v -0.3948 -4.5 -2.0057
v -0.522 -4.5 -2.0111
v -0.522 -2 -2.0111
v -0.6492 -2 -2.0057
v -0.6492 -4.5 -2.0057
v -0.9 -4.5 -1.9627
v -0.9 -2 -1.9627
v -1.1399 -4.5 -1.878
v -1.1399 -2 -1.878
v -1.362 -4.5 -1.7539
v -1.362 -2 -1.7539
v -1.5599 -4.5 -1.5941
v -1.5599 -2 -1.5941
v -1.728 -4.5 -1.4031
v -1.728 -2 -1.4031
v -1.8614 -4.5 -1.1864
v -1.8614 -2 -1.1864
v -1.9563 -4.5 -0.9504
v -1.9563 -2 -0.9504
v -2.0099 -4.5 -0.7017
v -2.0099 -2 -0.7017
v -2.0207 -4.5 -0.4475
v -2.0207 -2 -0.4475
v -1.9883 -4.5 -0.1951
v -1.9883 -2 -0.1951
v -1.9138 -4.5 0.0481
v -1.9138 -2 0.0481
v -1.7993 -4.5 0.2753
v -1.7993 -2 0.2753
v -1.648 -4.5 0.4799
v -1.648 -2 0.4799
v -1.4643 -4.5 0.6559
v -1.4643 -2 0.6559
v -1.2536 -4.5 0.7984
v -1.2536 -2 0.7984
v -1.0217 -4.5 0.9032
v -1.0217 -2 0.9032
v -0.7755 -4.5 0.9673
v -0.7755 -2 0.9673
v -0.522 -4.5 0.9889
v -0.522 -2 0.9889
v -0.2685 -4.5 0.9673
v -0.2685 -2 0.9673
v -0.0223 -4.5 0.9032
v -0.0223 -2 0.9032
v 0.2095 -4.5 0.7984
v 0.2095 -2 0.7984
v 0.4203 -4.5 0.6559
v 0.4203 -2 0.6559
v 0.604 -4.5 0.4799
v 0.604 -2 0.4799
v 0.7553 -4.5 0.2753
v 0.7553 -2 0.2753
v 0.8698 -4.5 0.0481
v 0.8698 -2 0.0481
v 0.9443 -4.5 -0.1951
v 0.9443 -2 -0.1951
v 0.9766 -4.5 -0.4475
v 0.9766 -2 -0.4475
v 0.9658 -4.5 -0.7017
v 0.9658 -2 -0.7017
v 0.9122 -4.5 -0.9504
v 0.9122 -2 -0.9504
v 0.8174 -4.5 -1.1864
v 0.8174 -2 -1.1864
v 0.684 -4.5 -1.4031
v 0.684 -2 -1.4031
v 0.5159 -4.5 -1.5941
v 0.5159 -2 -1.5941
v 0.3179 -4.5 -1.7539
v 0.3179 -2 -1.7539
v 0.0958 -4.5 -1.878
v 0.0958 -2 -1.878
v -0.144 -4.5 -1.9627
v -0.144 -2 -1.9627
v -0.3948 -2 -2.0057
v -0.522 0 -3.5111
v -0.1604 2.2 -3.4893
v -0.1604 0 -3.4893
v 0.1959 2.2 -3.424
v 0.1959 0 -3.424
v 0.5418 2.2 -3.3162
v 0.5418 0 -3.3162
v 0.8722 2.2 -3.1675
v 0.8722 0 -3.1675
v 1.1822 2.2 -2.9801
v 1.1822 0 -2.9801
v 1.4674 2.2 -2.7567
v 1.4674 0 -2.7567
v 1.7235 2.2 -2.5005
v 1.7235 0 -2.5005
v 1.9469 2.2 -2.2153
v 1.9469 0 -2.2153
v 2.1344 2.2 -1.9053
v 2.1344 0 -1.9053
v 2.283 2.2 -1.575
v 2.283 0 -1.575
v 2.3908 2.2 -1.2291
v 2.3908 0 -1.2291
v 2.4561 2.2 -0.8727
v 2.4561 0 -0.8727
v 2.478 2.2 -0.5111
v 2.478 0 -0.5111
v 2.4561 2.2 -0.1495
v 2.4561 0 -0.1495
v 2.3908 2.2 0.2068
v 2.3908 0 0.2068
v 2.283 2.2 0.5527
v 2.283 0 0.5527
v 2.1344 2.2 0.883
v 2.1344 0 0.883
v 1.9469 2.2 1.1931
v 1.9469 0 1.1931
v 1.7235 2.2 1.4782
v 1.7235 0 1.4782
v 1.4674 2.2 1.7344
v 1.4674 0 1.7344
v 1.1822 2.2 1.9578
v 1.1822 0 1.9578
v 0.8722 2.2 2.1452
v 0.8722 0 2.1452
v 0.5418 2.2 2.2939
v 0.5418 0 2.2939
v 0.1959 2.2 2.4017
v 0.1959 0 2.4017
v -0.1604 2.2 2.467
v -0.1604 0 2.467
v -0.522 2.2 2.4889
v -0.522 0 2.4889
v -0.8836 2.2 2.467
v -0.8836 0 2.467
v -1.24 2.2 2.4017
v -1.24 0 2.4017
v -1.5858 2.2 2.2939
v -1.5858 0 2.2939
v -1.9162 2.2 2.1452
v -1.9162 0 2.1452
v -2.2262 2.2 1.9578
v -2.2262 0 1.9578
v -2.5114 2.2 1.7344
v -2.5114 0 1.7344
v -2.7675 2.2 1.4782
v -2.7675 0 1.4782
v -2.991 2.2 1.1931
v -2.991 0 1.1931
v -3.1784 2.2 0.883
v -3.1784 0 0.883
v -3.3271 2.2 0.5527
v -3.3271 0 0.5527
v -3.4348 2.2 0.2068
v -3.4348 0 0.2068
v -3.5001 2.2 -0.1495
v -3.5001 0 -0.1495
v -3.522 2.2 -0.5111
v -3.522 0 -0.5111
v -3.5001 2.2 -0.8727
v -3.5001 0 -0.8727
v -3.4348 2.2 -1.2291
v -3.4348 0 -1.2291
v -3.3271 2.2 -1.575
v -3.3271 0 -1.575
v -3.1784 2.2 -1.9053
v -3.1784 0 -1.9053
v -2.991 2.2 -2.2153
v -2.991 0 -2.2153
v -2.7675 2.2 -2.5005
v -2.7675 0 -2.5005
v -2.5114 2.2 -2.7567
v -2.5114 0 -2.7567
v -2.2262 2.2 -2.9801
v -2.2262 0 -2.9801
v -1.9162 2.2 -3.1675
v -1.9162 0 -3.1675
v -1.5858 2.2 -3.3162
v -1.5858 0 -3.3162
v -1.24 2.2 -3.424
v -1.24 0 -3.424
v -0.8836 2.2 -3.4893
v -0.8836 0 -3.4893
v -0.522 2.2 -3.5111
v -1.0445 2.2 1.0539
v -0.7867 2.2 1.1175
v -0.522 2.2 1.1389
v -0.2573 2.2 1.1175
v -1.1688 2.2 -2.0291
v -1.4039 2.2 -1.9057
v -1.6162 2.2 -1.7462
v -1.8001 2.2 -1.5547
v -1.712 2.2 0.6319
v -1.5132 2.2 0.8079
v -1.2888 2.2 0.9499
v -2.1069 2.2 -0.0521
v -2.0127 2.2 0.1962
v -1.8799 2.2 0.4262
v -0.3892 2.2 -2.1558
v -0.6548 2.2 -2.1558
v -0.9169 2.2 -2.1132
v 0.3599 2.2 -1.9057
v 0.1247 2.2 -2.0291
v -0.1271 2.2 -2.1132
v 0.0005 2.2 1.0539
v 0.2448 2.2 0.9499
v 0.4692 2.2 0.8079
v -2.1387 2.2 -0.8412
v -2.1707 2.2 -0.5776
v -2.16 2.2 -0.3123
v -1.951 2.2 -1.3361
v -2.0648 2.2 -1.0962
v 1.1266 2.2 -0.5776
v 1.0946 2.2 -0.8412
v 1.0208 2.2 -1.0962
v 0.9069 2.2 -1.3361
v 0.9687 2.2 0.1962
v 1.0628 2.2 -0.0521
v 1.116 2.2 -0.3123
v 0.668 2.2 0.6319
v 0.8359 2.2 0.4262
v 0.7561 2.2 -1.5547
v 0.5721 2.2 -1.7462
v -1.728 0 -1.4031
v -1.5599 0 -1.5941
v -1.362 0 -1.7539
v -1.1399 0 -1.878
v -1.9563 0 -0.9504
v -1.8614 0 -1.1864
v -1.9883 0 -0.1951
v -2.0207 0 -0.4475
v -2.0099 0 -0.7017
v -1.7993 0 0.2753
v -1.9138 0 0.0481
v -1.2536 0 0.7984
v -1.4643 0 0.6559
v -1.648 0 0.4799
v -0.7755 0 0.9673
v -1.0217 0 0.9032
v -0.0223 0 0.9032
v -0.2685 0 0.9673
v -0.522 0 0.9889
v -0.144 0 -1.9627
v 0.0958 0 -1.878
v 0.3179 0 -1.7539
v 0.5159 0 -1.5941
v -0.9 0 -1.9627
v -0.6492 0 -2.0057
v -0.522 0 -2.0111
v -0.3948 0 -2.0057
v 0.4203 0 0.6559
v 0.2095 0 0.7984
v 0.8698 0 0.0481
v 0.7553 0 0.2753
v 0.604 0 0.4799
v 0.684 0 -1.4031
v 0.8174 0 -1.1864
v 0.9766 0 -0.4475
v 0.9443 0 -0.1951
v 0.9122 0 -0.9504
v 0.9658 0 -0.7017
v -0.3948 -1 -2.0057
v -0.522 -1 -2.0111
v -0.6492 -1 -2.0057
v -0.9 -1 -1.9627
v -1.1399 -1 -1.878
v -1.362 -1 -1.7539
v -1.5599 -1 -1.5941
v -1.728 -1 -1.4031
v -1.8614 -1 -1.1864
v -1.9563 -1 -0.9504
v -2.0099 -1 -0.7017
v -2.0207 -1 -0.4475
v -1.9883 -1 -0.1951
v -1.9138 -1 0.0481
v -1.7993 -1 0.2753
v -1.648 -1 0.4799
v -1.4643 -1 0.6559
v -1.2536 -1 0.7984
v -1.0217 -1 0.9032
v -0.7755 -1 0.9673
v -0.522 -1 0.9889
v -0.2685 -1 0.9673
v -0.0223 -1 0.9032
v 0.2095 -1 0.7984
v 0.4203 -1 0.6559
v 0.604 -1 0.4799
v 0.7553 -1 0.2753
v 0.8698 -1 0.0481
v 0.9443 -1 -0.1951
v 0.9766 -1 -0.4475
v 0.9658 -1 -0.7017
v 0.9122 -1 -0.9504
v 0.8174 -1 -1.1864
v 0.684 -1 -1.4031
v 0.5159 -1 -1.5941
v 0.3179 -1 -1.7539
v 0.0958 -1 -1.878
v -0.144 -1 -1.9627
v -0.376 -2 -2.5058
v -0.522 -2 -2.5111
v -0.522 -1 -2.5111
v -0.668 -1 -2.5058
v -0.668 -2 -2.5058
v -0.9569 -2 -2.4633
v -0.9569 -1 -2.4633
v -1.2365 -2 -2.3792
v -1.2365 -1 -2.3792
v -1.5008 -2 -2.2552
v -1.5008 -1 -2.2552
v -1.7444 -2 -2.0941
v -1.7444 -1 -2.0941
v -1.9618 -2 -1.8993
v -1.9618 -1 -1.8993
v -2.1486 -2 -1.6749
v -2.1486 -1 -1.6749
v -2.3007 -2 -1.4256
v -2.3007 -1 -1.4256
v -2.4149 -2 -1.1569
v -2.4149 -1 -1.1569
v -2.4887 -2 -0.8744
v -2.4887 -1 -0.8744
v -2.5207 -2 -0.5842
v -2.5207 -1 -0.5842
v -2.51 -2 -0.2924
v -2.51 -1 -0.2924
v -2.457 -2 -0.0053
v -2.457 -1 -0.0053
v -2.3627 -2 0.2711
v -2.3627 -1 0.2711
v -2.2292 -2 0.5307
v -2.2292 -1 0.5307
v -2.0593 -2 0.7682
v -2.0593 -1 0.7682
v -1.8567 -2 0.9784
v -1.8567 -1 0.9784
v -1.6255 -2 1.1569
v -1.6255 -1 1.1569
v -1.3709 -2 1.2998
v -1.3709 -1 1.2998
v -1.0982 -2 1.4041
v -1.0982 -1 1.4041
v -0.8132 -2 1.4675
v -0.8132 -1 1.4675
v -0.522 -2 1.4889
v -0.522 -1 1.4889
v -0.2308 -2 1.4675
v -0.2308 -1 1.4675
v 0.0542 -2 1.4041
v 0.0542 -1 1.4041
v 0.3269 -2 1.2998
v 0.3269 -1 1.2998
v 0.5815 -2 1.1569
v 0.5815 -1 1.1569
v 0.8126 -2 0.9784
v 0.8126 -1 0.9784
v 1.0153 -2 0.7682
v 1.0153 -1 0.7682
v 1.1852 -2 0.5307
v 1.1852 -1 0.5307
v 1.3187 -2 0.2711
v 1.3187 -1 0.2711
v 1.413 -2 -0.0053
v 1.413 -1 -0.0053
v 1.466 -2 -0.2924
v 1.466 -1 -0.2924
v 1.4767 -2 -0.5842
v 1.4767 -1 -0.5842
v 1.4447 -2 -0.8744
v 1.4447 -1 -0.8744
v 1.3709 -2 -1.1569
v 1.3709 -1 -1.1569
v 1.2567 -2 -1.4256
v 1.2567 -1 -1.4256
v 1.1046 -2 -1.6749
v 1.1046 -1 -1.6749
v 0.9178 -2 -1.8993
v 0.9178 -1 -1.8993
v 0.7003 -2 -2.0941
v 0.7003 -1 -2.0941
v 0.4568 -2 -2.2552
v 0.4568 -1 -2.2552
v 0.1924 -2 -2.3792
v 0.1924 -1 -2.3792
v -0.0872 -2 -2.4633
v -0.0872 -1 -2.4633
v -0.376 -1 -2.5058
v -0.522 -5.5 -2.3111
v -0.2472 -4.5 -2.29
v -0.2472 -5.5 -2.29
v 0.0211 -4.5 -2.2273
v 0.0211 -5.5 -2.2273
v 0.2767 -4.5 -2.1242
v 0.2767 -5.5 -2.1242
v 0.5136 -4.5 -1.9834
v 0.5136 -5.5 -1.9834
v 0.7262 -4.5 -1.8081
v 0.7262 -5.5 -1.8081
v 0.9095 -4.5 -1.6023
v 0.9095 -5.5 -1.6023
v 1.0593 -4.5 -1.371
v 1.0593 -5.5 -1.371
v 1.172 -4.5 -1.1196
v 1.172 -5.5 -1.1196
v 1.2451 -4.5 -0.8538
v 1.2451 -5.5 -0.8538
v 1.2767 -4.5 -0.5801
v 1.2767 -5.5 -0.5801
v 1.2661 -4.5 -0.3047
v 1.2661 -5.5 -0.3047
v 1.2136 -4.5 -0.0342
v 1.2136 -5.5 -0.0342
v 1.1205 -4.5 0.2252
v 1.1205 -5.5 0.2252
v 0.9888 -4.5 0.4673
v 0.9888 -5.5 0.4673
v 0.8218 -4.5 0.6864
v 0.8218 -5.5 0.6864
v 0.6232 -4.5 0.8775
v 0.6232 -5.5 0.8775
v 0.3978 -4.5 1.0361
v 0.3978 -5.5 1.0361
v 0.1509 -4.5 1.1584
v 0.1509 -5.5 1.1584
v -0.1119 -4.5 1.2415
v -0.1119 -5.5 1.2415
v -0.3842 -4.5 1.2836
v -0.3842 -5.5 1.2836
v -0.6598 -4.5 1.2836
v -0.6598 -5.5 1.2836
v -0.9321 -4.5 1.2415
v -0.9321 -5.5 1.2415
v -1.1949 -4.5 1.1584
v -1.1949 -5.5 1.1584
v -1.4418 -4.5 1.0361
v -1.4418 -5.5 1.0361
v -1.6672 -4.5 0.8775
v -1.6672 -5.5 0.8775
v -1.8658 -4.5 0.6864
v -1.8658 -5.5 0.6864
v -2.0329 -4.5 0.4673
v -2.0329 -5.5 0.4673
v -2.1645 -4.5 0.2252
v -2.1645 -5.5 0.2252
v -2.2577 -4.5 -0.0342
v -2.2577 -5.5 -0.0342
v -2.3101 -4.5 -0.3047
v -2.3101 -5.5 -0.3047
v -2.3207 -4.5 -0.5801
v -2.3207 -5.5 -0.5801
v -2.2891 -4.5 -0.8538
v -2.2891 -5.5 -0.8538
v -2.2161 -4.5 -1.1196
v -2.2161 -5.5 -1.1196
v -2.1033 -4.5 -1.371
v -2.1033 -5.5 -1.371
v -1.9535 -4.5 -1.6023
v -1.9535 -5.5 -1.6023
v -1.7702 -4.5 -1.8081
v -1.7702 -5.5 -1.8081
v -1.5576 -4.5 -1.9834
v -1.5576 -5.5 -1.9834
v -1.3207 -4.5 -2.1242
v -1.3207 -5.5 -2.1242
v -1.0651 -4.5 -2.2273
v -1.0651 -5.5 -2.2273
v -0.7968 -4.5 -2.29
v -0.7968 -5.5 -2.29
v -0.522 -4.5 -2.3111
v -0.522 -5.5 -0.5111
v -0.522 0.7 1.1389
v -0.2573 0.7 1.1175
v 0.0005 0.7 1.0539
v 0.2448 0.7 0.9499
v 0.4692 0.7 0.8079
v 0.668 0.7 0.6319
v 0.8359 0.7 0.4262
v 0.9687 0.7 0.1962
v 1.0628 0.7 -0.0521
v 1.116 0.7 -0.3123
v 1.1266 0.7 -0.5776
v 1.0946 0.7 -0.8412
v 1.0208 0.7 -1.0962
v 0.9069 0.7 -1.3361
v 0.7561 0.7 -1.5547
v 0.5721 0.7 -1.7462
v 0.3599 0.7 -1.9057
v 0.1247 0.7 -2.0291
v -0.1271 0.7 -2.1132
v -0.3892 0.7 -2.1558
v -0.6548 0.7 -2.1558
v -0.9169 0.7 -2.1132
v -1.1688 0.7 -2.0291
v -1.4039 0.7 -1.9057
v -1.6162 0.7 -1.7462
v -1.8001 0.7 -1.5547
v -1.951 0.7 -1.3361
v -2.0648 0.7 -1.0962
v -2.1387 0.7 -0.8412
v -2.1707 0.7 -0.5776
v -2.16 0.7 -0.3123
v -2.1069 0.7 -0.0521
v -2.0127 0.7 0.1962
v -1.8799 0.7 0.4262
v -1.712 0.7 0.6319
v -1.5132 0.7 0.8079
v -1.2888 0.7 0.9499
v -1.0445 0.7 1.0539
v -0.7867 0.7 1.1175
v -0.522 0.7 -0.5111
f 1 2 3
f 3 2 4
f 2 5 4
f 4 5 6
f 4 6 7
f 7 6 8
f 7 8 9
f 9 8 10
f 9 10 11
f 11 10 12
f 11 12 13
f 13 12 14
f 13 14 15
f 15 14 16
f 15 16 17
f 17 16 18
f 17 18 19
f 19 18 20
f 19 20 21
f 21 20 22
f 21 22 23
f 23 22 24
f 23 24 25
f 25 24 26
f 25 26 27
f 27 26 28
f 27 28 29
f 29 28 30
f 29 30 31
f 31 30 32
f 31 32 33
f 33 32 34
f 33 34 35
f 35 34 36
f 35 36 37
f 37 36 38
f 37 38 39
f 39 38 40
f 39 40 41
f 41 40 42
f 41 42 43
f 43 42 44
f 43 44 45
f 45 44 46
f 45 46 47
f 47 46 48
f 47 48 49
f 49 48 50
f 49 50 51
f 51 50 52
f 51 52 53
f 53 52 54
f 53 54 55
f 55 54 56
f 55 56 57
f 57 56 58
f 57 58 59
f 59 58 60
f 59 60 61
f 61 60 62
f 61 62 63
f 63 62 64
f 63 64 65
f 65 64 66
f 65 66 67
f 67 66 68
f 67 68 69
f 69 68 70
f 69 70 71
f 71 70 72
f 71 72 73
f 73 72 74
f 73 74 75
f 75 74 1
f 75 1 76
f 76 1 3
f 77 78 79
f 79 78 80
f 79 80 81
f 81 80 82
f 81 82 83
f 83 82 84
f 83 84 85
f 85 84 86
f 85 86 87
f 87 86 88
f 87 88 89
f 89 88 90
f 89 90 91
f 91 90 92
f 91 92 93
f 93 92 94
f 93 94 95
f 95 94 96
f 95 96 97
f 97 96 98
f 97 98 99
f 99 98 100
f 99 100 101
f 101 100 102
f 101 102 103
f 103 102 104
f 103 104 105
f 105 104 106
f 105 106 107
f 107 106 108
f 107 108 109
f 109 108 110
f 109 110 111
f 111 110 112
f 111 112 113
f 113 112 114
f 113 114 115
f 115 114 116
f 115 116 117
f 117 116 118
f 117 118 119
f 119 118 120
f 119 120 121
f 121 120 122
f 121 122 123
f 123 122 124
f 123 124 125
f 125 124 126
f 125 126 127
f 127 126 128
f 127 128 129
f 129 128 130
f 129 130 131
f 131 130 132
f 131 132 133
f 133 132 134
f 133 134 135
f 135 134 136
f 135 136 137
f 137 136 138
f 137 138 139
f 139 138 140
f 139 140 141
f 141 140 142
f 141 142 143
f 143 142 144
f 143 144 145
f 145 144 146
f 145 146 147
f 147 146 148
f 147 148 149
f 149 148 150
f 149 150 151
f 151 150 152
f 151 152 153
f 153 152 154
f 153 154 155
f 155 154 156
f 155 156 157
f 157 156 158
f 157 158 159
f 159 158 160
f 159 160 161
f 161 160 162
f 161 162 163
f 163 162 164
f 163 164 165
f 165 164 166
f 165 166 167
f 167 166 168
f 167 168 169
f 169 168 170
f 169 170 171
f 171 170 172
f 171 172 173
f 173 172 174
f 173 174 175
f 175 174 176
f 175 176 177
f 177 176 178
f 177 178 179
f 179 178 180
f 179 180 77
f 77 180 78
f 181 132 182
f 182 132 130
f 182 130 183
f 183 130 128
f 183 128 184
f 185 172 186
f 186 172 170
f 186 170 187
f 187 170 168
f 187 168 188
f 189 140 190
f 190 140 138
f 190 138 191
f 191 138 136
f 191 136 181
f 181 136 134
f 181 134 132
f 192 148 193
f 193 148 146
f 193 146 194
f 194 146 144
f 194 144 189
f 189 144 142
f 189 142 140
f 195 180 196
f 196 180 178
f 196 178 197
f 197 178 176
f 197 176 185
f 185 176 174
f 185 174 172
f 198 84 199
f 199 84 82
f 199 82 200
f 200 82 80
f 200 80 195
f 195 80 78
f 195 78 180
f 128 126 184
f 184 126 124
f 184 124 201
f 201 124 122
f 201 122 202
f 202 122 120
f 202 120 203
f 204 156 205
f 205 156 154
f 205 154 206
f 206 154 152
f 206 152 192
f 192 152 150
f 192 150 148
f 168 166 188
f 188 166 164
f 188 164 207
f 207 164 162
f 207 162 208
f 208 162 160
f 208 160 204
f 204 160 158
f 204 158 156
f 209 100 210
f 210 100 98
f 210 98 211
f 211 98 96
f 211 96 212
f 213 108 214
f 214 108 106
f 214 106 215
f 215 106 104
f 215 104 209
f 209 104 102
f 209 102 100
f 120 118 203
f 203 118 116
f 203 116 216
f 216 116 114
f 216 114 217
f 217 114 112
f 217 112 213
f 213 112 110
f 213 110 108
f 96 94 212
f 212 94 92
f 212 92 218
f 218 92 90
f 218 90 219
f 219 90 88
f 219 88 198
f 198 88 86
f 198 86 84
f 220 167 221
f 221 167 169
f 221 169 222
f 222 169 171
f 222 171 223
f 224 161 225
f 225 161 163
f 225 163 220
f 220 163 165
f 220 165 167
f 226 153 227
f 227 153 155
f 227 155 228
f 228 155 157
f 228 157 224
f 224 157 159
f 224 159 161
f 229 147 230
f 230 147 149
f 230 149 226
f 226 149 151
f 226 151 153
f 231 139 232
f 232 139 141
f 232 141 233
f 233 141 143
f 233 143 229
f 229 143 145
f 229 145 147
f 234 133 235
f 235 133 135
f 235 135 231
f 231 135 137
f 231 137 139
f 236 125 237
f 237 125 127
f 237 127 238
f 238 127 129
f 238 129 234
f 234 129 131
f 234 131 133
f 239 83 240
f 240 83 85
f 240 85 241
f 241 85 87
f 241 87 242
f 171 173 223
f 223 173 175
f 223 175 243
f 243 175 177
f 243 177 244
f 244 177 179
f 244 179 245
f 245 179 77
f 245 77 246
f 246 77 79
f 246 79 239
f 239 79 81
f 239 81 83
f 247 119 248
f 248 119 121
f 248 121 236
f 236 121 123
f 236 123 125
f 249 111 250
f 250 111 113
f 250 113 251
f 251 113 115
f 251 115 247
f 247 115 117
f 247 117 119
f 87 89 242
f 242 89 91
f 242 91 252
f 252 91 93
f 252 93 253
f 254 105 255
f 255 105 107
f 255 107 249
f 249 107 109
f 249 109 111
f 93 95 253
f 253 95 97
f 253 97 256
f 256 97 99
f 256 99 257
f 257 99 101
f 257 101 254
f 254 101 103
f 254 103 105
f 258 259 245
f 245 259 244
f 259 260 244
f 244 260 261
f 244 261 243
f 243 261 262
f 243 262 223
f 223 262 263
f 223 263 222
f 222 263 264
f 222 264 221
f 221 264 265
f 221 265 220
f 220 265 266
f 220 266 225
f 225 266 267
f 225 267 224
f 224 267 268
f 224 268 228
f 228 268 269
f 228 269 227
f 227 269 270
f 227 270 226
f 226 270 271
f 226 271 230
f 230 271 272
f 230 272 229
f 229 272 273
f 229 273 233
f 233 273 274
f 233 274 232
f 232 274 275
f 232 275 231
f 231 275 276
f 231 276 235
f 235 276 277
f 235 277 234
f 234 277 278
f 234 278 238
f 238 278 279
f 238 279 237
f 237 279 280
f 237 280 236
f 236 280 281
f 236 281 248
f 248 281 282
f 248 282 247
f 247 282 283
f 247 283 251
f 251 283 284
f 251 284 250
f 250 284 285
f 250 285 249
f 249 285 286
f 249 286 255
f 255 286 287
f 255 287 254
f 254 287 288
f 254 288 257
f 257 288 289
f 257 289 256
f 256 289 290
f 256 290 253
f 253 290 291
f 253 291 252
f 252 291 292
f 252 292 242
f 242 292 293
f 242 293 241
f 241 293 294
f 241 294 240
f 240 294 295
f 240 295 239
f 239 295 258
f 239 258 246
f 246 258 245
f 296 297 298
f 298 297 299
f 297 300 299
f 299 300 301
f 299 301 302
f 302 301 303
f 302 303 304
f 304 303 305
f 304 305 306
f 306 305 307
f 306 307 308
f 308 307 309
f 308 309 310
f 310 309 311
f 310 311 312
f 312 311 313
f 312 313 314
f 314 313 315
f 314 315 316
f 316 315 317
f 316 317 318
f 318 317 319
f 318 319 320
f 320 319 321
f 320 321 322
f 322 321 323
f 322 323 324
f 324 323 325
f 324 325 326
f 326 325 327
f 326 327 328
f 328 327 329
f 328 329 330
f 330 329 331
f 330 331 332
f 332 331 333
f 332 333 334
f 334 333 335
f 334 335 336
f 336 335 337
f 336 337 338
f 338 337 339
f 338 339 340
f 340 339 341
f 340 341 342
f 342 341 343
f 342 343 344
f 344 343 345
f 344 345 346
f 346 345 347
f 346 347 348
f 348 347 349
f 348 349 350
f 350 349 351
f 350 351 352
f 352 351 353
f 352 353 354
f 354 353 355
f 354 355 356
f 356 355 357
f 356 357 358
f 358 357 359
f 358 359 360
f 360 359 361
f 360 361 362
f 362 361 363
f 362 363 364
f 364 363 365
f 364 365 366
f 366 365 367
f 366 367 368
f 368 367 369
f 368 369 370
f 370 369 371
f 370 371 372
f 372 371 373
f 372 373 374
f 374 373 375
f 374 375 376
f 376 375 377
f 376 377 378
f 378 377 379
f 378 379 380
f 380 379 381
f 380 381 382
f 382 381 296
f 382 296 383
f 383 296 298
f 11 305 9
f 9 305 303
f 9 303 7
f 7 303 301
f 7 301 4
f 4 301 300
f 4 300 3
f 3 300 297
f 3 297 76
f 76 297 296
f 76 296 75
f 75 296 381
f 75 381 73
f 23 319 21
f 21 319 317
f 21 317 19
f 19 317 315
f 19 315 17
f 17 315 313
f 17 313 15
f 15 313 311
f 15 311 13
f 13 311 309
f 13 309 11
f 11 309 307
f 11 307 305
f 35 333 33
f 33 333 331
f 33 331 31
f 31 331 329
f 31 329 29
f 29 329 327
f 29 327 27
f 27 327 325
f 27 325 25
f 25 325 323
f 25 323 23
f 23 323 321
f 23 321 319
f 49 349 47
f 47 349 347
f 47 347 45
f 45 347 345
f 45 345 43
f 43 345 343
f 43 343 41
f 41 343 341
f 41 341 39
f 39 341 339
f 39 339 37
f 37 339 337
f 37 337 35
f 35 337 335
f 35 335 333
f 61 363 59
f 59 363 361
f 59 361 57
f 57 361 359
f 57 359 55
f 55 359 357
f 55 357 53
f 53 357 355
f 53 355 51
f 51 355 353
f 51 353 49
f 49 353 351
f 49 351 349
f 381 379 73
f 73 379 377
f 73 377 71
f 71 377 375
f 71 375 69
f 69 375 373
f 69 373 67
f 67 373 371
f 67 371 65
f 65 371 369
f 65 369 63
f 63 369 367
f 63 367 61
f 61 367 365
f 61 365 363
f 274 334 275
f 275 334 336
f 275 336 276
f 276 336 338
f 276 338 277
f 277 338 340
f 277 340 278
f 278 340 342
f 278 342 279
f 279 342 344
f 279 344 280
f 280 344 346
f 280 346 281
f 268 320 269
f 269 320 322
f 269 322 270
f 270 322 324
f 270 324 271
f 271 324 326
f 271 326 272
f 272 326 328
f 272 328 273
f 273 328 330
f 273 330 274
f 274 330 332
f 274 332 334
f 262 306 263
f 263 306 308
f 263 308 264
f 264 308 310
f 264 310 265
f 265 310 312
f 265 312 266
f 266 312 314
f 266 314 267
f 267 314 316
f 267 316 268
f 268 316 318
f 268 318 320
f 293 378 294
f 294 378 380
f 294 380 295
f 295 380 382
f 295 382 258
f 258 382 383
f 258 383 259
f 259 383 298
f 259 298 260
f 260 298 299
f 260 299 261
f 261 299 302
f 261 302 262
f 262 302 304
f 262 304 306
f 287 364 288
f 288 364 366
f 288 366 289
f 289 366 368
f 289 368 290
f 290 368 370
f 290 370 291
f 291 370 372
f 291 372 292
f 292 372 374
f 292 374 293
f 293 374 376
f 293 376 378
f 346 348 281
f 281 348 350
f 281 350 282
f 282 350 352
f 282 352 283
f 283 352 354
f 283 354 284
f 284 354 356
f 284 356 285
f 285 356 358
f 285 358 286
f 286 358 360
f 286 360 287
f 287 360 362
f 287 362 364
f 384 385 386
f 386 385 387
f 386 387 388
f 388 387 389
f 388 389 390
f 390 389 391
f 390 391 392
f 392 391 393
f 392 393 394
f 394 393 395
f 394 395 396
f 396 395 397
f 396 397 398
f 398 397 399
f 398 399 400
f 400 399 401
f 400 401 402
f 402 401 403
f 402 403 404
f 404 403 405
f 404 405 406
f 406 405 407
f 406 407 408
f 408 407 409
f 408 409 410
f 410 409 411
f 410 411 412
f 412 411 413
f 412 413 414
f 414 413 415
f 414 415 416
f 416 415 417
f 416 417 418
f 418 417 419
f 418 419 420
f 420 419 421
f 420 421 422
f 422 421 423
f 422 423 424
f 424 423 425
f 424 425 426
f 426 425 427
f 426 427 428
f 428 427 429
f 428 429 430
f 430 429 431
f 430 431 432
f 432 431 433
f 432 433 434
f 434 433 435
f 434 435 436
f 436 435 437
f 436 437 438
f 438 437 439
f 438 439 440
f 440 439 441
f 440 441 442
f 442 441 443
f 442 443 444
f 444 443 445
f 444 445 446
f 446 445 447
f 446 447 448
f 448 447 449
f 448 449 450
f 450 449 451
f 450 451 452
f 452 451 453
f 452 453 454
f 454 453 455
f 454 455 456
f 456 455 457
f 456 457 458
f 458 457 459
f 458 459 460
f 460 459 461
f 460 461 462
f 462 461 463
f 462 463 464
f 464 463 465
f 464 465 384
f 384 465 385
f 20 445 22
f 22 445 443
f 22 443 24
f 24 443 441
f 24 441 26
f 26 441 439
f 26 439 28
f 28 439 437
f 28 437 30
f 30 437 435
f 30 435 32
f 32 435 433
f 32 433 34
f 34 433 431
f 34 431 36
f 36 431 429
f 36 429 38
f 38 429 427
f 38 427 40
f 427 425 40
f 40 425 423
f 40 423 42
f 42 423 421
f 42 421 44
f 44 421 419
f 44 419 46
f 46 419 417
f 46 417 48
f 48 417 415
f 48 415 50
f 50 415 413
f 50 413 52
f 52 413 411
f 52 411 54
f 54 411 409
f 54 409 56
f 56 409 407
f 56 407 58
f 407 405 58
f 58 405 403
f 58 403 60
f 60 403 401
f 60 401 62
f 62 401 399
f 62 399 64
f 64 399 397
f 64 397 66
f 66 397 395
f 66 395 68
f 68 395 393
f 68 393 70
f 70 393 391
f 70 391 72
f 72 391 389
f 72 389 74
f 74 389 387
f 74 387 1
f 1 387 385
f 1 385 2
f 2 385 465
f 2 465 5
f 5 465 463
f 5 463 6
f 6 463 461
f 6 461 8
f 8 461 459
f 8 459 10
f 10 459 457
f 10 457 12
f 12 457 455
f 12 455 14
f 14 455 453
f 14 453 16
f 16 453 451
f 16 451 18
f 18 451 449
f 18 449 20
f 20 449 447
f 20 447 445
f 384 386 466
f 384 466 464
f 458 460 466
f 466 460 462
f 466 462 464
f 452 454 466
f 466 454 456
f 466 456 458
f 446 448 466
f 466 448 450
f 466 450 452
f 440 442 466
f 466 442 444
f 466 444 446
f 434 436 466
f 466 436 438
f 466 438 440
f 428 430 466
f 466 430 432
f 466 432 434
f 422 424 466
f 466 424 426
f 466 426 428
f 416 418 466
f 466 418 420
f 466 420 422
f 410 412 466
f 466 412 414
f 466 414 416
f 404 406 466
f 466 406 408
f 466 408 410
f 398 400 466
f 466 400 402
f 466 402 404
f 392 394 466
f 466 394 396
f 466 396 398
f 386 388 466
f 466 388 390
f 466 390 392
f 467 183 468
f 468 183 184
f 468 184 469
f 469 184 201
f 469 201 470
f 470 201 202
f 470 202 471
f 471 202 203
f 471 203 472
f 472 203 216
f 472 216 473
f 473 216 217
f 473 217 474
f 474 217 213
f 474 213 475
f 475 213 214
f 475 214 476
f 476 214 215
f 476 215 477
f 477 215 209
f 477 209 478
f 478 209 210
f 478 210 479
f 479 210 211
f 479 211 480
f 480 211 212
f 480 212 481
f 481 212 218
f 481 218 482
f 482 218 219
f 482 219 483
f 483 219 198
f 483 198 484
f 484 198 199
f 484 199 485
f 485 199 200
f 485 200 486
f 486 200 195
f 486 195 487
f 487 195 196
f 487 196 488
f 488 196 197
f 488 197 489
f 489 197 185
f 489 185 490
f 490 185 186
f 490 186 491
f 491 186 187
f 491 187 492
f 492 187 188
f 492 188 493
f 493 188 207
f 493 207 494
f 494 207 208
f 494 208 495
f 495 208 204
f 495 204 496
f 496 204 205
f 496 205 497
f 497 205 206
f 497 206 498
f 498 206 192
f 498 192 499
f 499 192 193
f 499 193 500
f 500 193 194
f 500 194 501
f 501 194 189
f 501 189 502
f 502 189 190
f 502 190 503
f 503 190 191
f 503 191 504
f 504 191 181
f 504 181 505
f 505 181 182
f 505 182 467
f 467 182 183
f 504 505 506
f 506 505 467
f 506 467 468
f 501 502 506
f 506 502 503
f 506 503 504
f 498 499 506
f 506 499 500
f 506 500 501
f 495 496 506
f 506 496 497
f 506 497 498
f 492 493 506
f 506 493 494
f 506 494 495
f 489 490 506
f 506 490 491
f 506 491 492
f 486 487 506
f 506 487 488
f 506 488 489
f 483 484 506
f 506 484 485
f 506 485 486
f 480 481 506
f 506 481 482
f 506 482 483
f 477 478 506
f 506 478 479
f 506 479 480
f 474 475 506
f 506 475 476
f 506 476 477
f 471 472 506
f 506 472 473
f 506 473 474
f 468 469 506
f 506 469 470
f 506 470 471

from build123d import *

# Parameters (mm, degrees)
SKETCH1_R           = 3
BOSS_EXTRUDE1_DEPTH = 2.2
SKETCH1_3_R         = 1.6
BOSS_EXTRUDE2_DEPTH = 1
SKETCH5_R           = 1.5
BOSS_EXTRUDE3_DEPTH = 1
SKETCH6_R           = 2
BOSS_EXTRUDE4_DEPTH = 1
SKETCH8_R           = 1.5
BOSS_EXTRUDE5_DEPTH = 3.5
SKETCH10_R          = 1.8
BOSS_EXTRUDE6_DEPTH = 1
SKETCH12_R          = 1.65
CUT_EXTRUDE1_DEPTH  = 1.5


with BuildPart() as part:
    # Sketch1 → Boss-Extrude1 (new body)
    with BuildSketch(Plane(origin=(0, 0, 0), x_dir=(1, 0, 0), z_dir=(0, 1, 0))):
        with Locations((-0.522013312, 0.511138034)):
            Circle(SKETCH1_R)
    extrude(amount=BOSS_EXTRUDE1_DEPTH)

    # Sketch1<3> → Boss-Extrude2 (add)
    with BuildSketch(Plane(origin=(0, 0, 0), x_dir=(1, 0, 0), z_dir=(0, 1, 0))):
        with Locations((-0.522013312, 0.511138034)):
            Circle(SKETCH1_3_R)
    extrude(amount=BOSS_EXTRUDE2_DEPTH)

    # Sketch5 → Boss-Extrude3 (add)
    with BuildSketch(Plane.XZ):
        with Locations((-0.522013312, -0.511138034)):
            Circle(SKETCH5_R)
    extrude(amount=BOSS_EXTRUDE3_DEPTH)

    # Sketch6 → Boss-Extrude4 (add)
    with BuildSketch(Plane.XZ.offset(1)):
        with Locations((-0.522013312, -0.511138034)):
            Circle(SKETCH6_R)
    extrude(amount=BOSS_EXTRUDE4_DEPTH)

    # Sketch8 → Boss-Extrude5 (add)
    with BuildSketch(Plane(origin=(0, -2, 0), x_dir=(-1, 0, 0), z_dir=(0, -1, 0))):
        with Locations((0.522013312, 0.511138034)):
            Circle(SKETCH8_R)
    extrude(amount=BOSS_EXTRUDE5_DEPTH)

    # Sketch10 → Boss-Extrude6 (add)
    with BuildSketch(Plane.XZ.offset(5.5)):
        with Locations((-0.522013312, -0.511138034)):
            Circle(SKETCH10_R)
    extrude(amount=-BOSS_EXTRUDE6_DEPTH)

    # Sketch12 → Cut-Extrude1 (cut)
    with BuildSketch(Plane(origin=(0, 2.2, 0), x_dir=(1, 0, 0), z_dir=(0, 1, 0))):
        with Locations((-0.522013312, 0.511138034)):
            Circle(SKETCH12_R)
    extrude(amount=-CUT_EXTRUDE1_DEPTH, mode=Mode.SUBTRACT)


solid = part.part
